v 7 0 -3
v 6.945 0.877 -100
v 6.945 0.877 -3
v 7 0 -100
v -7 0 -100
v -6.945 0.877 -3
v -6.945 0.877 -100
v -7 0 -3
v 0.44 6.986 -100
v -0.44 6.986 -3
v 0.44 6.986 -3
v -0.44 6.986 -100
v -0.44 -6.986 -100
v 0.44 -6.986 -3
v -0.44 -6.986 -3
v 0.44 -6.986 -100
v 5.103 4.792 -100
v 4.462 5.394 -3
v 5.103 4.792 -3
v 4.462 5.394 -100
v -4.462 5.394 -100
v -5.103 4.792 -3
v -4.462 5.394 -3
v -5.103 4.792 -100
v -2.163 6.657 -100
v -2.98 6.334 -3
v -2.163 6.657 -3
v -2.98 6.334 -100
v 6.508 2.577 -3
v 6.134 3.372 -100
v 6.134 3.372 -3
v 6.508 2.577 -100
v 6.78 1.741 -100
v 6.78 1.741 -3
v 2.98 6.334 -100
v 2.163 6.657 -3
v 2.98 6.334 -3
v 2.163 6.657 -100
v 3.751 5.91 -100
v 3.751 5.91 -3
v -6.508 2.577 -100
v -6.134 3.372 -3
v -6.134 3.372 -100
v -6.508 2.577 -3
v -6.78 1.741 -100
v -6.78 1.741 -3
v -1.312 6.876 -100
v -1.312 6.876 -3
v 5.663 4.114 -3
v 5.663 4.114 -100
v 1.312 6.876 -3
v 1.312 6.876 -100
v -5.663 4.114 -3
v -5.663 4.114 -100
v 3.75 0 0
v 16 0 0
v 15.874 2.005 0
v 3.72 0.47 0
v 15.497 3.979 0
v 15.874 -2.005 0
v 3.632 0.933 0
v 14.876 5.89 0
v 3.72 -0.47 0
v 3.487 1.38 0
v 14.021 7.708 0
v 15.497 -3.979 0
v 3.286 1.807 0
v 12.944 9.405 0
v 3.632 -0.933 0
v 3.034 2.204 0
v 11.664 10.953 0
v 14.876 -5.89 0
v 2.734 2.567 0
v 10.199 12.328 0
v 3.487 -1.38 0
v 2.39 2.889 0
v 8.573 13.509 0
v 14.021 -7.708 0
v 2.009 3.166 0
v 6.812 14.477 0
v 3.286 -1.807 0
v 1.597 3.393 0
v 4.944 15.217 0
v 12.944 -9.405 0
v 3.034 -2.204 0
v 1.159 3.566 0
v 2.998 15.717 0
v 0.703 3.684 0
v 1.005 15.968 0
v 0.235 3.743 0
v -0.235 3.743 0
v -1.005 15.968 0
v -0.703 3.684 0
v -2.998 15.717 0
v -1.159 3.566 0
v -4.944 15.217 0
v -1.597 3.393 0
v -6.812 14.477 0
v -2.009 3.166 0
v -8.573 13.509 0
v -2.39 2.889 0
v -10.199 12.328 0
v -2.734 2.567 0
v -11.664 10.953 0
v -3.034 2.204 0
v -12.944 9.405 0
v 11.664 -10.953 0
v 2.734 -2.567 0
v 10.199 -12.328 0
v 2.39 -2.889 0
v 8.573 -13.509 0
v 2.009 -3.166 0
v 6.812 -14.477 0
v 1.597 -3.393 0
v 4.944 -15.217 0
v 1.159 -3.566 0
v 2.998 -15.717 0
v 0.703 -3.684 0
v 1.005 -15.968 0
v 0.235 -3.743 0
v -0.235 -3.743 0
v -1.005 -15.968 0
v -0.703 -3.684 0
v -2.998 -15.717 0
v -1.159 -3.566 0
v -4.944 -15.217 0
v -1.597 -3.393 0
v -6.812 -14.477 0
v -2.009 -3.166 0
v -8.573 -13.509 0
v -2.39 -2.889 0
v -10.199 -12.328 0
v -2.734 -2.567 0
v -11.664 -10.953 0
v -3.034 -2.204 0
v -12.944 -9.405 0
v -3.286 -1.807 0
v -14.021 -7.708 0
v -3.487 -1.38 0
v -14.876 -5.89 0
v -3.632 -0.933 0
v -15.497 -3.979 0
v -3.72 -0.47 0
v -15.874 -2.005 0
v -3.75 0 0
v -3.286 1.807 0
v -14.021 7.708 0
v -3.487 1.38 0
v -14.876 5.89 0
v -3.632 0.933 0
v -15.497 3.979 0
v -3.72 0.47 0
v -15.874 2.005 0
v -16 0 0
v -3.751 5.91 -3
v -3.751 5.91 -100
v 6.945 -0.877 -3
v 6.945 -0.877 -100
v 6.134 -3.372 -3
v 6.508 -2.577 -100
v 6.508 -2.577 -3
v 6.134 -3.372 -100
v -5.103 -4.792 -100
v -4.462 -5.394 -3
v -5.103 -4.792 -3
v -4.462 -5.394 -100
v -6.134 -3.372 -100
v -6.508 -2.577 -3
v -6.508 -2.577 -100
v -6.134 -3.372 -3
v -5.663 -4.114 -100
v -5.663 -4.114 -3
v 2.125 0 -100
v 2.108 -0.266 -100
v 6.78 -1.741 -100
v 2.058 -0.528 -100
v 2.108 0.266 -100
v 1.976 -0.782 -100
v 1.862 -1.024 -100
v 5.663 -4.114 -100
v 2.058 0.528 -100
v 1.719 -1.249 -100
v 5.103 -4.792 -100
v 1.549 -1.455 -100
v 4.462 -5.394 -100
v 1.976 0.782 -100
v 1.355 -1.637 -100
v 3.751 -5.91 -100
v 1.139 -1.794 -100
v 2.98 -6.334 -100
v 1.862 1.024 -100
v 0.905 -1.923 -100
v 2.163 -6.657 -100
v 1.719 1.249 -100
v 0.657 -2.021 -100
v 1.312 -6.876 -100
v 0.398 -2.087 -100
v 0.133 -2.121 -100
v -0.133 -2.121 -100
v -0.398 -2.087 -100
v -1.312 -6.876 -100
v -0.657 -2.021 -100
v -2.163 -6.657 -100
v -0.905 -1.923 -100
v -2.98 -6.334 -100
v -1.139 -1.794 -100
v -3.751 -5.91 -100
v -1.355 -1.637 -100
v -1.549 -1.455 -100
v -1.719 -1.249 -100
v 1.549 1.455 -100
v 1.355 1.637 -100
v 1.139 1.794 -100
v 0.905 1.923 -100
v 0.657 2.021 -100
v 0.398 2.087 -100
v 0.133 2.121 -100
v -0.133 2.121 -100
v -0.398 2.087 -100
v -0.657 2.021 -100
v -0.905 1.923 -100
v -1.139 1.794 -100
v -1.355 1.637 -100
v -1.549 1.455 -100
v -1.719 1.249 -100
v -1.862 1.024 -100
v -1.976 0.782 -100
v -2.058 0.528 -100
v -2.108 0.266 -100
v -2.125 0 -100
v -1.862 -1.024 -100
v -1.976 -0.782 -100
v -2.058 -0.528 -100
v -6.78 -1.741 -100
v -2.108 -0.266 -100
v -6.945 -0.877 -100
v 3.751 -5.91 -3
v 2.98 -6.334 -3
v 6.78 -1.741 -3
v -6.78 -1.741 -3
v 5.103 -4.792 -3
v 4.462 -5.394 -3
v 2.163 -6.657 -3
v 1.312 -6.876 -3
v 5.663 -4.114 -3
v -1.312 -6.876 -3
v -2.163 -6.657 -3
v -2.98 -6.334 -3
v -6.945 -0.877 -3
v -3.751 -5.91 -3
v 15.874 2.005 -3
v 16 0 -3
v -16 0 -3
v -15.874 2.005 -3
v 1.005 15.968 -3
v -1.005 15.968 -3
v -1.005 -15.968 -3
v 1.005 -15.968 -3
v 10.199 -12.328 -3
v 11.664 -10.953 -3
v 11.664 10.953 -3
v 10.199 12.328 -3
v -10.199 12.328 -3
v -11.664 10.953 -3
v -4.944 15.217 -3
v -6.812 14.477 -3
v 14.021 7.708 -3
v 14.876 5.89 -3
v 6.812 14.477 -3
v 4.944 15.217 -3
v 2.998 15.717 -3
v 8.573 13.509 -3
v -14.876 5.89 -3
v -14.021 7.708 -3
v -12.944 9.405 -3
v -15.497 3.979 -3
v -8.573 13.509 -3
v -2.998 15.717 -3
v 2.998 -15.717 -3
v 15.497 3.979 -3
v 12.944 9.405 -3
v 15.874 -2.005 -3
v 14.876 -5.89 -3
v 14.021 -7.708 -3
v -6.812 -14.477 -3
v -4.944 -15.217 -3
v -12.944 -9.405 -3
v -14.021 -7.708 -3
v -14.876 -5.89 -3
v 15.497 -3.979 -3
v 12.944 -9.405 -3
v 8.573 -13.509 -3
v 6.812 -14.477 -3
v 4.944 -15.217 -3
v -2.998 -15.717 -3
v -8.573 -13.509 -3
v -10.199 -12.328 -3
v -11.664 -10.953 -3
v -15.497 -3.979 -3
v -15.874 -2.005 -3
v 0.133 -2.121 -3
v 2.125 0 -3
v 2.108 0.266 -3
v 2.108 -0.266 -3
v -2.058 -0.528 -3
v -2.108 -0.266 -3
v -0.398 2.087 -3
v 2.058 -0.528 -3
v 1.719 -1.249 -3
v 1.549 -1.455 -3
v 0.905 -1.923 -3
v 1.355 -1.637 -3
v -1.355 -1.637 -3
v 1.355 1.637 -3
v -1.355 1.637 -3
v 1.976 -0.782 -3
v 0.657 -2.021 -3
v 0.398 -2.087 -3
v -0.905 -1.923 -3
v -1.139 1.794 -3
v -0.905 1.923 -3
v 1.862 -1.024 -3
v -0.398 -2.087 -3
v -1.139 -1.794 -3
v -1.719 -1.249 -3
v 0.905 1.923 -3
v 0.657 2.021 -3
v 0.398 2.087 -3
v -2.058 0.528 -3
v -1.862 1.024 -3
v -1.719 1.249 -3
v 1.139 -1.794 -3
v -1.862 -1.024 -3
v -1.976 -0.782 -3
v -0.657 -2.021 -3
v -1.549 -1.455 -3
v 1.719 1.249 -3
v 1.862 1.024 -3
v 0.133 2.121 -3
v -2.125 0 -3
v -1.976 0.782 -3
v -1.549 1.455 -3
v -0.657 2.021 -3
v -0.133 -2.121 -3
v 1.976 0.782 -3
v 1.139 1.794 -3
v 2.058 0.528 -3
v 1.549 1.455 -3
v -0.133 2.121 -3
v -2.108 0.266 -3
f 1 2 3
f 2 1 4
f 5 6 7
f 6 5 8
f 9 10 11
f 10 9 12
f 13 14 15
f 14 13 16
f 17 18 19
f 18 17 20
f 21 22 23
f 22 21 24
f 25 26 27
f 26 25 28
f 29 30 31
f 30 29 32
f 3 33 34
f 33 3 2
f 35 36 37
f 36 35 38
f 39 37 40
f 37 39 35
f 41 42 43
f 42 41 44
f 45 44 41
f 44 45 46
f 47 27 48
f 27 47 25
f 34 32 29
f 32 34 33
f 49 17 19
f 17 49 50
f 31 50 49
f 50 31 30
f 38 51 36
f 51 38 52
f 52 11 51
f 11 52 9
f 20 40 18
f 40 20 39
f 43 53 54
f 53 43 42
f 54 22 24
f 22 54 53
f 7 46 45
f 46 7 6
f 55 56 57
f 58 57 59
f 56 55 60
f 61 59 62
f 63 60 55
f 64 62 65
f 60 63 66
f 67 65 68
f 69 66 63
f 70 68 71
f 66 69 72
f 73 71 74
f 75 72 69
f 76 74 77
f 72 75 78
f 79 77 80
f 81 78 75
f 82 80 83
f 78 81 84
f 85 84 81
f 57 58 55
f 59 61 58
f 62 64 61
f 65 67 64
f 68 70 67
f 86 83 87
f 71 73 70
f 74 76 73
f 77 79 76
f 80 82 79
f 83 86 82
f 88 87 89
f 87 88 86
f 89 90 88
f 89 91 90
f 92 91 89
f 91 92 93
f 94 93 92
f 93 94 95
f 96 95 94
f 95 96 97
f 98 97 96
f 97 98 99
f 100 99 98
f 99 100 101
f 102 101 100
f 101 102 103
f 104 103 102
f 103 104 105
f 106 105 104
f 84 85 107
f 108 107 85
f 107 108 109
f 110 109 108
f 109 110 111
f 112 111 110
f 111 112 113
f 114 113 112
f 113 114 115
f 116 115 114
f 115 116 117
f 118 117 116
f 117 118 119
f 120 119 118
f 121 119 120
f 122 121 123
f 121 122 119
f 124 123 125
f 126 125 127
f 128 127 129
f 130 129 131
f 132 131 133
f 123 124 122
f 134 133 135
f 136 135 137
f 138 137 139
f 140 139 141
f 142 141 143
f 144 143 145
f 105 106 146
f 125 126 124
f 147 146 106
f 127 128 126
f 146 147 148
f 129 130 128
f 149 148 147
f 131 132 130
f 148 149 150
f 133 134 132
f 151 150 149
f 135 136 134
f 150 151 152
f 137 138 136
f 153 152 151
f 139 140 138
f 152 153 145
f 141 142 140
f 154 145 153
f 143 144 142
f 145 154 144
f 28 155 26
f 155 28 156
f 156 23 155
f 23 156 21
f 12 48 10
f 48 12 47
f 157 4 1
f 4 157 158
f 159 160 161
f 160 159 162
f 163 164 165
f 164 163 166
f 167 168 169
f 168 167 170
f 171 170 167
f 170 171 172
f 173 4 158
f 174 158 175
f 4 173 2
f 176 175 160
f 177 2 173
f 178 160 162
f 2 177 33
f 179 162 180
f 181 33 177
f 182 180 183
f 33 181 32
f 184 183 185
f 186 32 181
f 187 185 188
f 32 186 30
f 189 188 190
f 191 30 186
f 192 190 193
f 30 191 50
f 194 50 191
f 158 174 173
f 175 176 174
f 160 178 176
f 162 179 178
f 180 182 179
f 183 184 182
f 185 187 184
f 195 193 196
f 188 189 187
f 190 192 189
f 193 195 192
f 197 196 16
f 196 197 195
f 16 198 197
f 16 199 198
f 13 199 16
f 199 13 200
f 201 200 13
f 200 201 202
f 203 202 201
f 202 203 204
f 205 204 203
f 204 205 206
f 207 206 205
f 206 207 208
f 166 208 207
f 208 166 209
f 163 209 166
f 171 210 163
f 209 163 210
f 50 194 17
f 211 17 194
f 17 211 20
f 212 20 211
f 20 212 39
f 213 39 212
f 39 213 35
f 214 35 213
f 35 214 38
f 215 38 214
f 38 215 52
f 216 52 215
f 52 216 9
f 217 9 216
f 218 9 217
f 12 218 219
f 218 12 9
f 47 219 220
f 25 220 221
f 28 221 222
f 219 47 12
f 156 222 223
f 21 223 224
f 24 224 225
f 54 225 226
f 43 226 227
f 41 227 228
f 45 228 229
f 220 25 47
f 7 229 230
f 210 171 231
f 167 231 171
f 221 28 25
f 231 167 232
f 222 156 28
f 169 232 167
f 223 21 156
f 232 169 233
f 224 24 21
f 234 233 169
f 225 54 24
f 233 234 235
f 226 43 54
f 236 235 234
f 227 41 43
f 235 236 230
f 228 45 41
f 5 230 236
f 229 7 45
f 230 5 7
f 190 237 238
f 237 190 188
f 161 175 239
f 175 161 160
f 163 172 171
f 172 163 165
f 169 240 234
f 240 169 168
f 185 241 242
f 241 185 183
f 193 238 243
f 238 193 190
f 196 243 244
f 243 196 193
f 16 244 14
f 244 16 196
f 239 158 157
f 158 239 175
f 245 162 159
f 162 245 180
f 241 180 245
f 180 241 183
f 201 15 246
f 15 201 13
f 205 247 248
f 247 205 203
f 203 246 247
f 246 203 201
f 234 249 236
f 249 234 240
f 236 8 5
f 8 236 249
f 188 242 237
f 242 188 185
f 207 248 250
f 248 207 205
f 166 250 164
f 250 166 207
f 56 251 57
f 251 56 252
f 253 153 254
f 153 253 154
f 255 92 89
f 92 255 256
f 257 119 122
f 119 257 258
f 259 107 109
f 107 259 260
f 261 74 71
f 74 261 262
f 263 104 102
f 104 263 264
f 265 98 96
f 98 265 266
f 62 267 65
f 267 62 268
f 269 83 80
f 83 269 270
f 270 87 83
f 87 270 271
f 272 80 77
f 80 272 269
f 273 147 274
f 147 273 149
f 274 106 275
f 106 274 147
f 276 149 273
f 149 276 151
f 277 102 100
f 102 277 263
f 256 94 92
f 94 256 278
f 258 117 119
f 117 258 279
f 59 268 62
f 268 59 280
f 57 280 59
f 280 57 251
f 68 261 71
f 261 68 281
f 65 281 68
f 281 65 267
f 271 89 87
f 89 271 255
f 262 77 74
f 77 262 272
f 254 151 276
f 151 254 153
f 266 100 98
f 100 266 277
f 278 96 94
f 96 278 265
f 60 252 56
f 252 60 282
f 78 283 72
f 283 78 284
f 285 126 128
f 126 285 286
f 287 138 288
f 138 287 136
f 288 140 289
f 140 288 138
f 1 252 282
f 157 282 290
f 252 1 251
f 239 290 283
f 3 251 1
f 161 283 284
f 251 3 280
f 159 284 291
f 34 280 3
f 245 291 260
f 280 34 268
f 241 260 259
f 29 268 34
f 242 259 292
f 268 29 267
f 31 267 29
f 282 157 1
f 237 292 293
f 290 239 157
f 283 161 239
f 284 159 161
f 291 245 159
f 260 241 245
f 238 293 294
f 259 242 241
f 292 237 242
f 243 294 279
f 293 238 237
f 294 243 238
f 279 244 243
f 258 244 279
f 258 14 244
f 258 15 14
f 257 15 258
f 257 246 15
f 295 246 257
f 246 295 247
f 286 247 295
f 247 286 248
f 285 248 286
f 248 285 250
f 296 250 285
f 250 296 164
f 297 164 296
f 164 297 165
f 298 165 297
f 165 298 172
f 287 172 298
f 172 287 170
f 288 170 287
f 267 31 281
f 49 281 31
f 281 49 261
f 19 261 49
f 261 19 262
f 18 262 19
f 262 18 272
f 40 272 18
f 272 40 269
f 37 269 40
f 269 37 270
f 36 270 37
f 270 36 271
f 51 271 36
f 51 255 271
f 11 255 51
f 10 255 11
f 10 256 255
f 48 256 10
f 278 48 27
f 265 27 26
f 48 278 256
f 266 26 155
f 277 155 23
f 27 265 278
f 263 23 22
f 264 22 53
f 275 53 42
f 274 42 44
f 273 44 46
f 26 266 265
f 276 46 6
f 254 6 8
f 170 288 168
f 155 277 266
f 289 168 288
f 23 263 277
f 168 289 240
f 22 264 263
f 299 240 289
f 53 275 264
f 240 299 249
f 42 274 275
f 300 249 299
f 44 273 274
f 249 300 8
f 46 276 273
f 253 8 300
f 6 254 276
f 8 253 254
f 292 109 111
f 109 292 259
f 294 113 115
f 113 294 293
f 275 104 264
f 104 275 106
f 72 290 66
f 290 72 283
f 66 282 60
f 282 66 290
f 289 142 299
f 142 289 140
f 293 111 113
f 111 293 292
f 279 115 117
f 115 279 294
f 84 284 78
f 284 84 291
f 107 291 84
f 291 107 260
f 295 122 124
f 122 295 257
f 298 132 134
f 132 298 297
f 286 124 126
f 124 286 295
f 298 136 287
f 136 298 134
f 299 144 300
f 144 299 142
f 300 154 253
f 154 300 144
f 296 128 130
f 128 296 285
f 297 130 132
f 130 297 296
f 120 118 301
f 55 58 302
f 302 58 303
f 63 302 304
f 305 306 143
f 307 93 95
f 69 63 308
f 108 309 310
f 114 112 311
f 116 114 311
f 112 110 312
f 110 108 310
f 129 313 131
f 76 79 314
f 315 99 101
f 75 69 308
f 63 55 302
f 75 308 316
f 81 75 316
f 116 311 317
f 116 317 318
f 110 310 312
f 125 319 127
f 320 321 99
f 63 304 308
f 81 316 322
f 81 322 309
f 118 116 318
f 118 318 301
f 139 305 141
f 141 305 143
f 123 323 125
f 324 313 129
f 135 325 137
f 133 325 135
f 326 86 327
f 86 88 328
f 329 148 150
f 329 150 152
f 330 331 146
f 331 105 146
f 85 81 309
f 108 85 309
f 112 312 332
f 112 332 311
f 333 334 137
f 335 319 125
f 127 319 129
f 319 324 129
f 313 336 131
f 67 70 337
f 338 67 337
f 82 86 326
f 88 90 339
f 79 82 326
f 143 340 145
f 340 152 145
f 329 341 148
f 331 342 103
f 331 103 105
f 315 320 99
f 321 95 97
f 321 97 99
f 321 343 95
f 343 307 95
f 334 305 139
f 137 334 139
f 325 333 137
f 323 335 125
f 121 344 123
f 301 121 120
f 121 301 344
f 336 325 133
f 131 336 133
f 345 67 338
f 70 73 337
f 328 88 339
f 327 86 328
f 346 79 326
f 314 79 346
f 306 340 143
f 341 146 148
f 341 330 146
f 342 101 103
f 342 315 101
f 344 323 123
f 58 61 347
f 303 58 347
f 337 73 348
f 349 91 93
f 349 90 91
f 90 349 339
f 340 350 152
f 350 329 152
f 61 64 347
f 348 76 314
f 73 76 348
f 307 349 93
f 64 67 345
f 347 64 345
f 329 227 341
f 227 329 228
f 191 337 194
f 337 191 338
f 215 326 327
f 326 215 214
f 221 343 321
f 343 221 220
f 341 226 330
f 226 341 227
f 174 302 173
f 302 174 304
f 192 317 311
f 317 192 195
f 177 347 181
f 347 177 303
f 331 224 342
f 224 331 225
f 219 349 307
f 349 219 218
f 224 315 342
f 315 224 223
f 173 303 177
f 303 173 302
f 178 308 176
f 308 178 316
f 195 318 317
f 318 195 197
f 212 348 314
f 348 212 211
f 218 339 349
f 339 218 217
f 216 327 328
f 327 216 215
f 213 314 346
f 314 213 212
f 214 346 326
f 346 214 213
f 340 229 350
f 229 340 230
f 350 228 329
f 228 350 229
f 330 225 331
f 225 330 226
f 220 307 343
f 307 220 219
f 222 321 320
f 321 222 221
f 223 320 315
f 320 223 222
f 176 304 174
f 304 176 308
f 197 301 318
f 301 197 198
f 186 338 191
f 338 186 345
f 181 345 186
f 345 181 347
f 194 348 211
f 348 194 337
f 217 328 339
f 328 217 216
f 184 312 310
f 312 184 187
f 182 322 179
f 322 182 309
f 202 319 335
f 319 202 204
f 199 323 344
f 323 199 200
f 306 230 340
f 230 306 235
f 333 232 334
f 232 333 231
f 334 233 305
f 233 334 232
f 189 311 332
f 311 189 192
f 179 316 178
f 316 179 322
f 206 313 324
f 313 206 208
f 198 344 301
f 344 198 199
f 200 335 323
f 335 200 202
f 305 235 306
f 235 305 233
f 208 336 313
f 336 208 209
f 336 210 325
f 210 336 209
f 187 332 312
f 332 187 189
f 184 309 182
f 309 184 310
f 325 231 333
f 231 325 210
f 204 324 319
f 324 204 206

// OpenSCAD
$fn = 50;


difference() {
	union() {
		translate(v = [0, 0, -100.0000000000]) {
			cylinder(h = 100, r = 7.0000000000);
		}
		translate(v = [0, 0, -3.0000000000]) {
			cylinder(h = 3, r = 16.0000000000);
		}
	}
	union() {
		translate(v = [0, 0, 0]) {
			rotate(a = [0, 0, 0]) {
				difference() {
					union() {
						#translate(v = [0, 0, -100.0000000000]) {
							cylinder(h = 100, r = 2.0000000000);
						}
						#translate(v = [0, 0, -3]) {
							cylinder(h = 3, r1 = 2.1250000000, r2 = 3.7500000000);
						}
						#translate(v = [0, 0, -100.0000000000]) {
							cylinder(h = 100, r = 2.1250000000);
						}
						#translate(v = [0, 0, -100.0000000000]) {
							cylinder(h = 100, r = 2.0000000000);
						}
					}
					union();
				}
			}
		}
	}
}
